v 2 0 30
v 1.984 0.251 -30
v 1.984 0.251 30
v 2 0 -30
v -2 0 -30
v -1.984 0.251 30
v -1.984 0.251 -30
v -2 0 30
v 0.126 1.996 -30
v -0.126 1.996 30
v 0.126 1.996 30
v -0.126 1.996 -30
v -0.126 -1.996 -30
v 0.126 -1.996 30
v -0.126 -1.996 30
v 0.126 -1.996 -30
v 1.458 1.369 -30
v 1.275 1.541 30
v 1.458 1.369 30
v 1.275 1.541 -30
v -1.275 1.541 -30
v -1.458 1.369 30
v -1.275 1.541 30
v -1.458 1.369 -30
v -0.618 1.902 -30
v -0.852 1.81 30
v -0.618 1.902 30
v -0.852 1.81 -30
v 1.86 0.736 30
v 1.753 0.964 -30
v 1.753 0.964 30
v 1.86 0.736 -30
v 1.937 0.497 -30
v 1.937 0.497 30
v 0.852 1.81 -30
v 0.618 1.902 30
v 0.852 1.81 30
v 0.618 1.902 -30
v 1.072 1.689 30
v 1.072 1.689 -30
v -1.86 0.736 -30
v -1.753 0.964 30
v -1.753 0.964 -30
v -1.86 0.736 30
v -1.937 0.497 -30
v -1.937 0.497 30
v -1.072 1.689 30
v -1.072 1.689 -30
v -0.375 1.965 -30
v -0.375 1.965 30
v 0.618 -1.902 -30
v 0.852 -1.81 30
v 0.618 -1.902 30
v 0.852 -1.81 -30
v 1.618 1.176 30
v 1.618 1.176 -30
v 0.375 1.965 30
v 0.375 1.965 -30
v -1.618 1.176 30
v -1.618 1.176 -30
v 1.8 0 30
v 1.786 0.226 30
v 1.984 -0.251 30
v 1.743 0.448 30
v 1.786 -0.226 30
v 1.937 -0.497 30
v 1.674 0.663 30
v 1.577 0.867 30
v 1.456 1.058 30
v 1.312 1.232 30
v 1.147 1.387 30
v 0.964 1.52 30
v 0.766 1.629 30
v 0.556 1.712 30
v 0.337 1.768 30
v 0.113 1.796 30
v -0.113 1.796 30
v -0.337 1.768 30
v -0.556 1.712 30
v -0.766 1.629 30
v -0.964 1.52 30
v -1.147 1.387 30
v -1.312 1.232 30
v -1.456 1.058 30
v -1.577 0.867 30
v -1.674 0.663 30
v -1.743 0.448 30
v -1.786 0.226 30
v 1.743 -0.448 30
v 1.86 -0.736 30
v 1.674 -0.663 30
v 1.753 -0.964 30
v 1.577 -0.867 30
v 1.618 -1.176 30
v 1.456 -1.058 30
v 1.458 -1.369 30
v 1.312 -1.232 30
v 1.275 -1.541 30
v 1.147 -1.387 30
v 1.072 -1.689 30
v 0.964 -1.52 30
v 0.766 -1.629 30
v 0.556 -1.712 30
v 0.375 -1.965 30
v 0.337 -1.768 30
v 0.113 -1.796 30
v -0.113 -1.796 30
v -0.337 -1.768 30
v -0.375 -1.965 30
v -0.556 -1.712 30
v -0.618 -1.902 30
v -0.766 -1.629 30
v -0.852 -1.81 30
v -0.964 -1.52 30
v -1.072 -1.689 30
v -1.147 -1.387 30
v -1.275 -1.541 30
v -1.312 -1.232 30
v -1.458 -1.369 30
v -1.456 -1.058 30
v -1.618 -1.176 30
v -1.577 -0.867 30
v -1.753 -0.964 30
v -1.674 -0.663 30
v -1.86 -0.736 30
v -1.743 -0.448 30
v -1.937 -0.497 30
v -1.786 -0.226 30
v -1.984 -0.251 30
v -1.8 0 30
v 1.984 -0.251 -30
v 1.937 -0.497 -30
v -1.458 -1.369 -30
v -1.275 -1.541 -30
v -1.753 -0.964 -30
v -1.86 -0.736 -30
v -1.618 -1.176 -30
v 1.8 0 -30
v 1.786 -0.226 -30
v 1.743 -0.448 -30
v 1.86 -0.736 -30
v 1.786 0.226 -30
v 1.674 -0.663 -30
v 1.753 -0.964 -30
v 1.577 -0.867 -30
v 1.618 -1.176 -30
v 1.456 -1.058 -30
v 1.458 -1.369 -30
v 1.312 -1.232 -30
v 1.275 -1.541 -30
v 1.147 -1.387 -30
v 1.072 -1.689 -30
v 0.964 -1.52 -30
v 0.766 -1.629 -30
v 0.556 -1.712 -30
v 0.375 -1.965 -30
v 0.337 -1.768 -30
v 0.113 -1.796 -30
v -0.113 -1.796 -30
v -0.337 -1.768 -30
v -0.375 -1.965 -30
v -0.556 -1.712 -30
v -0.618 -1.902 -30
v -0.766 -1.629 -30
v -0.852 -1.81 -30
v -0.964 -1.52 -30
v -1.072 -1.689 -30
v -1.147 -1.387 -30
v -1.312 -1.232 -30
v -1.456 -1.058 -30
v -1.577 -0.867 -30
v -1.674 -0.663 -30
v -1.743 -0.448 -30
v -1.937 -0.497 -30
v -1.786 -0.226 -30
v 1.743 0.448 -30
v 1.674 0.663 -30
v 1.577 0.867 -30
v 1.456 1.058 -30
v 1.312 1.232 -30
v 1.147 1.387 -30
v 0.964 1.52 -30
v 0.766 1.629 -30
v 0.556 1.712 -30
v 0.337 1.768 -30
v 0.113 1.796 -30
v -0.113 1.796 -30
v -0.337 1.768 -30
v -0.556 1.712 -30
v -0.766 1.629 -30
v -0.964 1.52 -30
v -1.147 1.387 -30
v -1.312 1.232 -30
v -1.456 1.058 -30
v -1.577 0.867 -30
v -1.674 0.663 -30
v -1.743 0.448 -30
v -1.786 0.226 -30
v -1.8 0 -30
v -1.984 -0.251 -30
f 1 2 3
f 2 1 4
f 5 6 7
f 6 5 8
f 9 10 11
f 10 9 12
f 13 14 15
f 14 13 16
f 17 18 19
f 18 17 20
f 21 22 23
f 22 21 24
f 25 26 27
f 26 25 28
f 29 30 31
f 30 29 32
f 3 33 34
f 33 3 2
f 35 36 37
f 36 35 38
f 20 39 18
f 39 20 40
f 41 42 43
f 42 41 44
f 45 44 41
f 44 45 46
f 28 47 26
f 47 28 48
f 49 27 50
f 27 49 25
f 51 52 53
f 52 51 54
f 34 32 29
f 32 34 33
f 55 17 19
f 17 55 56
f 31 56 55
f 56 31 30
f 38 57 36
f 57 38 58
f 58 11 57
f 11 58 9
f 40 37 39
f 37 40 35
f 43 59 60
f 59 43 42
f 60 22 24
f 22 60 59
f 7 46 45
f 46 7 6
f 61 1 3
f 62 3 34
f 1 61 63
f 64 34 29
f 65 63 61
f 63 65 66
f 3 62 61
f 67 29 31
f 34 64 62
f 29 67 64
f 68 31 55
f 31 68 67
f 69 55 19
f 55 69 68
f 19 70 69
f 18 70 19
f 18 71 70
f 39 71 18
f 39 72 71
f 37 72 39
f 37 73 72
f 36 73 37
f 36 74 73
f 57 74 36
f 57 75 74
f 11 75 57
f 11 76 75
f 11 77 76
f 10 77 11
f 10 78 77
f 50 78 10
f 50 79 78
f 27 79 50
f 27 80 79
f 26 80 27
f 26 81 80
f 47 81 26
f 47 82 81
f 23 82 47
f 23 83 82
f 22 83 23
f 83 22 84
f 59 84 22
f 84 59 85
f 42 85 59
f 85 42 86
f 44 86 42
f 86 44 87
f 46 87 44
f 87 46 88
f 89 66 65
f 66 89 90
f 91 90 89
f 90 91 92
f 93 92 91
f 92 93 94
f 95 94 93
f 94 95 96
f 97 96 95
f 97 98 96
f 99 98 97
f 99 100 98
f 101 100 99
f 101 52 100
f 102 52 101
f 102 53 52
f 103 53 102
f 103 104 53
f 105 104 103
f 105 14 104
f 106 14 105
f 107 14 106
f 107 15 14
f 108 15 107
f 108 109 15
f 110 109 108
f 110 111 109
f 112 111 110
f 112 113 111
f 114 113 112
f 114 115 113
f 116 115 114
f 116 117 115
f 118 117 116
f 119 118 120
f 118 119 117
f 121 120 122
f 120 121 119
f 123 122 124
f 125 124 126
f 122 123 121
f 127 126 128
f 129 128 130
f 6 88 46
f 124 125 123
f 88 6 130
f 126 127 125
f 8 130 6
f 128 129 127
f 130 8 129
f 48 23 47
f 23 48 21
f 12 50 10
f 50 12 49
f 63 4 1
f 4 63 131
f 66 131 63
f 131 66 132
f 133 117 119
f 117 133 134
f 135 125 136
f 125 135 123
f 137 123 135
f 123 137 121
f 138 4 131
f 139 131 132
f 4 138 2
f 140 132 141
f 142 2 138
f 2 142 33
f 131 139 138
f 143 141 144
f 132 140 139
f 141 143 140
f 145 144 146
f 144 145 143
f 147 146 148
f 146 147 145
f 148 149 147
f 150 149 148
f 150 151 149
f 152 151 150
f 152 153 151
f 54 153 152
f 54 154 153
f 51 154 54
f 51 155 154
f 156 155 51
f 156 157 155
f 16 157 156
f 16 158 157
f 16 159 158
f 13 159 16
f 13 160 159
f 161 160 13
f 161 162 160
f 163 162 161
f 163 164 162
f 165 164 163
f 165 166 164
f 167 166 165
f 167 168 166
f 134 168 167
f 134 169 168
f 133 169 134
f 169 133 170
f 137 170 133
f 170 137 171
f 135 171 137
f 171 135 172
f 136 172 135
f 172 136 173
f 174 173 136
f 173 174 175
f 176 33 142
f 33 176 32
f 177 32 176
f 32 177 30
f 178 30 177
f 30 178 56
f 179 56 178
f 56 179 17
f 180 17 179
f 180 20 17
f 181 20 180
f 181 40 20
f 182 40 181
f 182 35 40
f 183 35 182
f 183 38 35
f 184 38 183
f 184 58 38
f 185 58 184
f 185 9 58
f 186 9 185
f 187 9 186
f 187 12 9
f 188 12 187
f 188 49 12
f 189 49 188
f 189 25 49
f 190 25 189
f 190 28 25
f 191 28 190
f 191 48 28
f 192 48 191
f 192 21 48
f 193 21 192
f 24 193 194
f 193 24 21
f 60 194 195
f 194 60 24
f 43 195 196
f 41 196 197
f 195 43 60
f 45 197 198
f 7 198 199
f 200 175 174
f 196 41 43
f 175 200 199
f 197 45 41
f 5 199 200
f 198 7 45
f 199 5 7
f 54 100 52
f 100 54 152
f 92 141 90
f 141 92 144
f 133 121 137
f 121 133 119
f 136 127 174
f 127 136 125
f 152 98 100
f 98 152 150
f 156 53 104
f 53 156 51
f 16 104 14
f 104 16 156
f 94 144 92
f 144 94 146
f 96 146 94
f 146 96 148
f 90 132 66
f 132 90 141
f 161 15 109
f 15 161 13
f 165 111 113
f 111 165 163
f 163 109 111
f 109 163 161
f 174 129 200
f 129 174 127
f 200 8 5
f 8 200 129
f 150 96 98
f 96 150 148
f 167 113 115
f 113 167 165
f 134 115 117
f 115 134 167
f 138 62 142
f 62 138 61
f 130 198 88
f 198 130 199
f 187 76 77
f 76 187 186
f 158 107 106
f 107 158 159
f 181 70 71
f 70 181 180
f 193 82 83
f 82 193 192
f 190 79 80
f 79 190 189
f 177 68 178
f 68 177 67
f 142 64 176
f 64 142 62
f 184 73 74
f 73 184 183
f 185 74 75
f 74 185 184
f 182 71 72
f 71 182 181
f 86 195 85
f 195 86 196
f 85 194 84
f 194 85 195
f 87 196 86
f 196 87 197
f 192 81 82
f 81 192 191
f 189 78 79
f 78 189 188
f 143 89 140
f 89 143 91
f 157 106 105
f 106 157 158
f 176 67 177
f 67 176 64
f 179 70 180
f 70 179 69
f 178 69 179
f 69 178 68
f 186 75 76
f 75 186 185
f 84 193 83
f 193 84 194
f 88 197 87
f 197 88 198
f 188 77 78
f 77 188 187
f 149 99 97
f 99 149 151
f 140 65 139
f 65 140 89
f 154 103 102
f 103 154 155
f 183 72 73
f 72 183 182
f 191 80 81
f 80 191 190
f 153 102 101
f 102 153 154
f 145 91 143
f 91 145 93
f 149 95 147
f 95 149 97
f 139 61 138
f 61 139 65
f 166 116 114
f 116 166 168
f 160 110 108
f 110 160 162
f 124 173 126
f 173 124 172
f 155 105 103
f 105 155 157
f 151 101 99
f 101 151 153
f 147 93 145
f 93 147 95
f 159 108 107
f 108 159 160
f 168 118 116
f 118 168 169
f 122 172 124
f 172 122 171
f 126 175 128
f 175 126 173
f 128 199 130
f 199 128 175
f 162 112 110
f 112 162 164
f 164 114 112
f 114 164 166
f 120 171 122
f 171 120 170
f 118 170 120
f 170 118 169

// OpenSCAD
$fn = 50;


difference() {
	union() {
		translate(v = [0, 0, -30.0000000000]) {
			cylinder(h = 60, r = 2.0000000000);
		}
	}
	union() {
		#translate(v = [0, 0, -100.0000000000]) {
			cylinder(h = 200, r = 1.8000000000);
		}
	}
}
